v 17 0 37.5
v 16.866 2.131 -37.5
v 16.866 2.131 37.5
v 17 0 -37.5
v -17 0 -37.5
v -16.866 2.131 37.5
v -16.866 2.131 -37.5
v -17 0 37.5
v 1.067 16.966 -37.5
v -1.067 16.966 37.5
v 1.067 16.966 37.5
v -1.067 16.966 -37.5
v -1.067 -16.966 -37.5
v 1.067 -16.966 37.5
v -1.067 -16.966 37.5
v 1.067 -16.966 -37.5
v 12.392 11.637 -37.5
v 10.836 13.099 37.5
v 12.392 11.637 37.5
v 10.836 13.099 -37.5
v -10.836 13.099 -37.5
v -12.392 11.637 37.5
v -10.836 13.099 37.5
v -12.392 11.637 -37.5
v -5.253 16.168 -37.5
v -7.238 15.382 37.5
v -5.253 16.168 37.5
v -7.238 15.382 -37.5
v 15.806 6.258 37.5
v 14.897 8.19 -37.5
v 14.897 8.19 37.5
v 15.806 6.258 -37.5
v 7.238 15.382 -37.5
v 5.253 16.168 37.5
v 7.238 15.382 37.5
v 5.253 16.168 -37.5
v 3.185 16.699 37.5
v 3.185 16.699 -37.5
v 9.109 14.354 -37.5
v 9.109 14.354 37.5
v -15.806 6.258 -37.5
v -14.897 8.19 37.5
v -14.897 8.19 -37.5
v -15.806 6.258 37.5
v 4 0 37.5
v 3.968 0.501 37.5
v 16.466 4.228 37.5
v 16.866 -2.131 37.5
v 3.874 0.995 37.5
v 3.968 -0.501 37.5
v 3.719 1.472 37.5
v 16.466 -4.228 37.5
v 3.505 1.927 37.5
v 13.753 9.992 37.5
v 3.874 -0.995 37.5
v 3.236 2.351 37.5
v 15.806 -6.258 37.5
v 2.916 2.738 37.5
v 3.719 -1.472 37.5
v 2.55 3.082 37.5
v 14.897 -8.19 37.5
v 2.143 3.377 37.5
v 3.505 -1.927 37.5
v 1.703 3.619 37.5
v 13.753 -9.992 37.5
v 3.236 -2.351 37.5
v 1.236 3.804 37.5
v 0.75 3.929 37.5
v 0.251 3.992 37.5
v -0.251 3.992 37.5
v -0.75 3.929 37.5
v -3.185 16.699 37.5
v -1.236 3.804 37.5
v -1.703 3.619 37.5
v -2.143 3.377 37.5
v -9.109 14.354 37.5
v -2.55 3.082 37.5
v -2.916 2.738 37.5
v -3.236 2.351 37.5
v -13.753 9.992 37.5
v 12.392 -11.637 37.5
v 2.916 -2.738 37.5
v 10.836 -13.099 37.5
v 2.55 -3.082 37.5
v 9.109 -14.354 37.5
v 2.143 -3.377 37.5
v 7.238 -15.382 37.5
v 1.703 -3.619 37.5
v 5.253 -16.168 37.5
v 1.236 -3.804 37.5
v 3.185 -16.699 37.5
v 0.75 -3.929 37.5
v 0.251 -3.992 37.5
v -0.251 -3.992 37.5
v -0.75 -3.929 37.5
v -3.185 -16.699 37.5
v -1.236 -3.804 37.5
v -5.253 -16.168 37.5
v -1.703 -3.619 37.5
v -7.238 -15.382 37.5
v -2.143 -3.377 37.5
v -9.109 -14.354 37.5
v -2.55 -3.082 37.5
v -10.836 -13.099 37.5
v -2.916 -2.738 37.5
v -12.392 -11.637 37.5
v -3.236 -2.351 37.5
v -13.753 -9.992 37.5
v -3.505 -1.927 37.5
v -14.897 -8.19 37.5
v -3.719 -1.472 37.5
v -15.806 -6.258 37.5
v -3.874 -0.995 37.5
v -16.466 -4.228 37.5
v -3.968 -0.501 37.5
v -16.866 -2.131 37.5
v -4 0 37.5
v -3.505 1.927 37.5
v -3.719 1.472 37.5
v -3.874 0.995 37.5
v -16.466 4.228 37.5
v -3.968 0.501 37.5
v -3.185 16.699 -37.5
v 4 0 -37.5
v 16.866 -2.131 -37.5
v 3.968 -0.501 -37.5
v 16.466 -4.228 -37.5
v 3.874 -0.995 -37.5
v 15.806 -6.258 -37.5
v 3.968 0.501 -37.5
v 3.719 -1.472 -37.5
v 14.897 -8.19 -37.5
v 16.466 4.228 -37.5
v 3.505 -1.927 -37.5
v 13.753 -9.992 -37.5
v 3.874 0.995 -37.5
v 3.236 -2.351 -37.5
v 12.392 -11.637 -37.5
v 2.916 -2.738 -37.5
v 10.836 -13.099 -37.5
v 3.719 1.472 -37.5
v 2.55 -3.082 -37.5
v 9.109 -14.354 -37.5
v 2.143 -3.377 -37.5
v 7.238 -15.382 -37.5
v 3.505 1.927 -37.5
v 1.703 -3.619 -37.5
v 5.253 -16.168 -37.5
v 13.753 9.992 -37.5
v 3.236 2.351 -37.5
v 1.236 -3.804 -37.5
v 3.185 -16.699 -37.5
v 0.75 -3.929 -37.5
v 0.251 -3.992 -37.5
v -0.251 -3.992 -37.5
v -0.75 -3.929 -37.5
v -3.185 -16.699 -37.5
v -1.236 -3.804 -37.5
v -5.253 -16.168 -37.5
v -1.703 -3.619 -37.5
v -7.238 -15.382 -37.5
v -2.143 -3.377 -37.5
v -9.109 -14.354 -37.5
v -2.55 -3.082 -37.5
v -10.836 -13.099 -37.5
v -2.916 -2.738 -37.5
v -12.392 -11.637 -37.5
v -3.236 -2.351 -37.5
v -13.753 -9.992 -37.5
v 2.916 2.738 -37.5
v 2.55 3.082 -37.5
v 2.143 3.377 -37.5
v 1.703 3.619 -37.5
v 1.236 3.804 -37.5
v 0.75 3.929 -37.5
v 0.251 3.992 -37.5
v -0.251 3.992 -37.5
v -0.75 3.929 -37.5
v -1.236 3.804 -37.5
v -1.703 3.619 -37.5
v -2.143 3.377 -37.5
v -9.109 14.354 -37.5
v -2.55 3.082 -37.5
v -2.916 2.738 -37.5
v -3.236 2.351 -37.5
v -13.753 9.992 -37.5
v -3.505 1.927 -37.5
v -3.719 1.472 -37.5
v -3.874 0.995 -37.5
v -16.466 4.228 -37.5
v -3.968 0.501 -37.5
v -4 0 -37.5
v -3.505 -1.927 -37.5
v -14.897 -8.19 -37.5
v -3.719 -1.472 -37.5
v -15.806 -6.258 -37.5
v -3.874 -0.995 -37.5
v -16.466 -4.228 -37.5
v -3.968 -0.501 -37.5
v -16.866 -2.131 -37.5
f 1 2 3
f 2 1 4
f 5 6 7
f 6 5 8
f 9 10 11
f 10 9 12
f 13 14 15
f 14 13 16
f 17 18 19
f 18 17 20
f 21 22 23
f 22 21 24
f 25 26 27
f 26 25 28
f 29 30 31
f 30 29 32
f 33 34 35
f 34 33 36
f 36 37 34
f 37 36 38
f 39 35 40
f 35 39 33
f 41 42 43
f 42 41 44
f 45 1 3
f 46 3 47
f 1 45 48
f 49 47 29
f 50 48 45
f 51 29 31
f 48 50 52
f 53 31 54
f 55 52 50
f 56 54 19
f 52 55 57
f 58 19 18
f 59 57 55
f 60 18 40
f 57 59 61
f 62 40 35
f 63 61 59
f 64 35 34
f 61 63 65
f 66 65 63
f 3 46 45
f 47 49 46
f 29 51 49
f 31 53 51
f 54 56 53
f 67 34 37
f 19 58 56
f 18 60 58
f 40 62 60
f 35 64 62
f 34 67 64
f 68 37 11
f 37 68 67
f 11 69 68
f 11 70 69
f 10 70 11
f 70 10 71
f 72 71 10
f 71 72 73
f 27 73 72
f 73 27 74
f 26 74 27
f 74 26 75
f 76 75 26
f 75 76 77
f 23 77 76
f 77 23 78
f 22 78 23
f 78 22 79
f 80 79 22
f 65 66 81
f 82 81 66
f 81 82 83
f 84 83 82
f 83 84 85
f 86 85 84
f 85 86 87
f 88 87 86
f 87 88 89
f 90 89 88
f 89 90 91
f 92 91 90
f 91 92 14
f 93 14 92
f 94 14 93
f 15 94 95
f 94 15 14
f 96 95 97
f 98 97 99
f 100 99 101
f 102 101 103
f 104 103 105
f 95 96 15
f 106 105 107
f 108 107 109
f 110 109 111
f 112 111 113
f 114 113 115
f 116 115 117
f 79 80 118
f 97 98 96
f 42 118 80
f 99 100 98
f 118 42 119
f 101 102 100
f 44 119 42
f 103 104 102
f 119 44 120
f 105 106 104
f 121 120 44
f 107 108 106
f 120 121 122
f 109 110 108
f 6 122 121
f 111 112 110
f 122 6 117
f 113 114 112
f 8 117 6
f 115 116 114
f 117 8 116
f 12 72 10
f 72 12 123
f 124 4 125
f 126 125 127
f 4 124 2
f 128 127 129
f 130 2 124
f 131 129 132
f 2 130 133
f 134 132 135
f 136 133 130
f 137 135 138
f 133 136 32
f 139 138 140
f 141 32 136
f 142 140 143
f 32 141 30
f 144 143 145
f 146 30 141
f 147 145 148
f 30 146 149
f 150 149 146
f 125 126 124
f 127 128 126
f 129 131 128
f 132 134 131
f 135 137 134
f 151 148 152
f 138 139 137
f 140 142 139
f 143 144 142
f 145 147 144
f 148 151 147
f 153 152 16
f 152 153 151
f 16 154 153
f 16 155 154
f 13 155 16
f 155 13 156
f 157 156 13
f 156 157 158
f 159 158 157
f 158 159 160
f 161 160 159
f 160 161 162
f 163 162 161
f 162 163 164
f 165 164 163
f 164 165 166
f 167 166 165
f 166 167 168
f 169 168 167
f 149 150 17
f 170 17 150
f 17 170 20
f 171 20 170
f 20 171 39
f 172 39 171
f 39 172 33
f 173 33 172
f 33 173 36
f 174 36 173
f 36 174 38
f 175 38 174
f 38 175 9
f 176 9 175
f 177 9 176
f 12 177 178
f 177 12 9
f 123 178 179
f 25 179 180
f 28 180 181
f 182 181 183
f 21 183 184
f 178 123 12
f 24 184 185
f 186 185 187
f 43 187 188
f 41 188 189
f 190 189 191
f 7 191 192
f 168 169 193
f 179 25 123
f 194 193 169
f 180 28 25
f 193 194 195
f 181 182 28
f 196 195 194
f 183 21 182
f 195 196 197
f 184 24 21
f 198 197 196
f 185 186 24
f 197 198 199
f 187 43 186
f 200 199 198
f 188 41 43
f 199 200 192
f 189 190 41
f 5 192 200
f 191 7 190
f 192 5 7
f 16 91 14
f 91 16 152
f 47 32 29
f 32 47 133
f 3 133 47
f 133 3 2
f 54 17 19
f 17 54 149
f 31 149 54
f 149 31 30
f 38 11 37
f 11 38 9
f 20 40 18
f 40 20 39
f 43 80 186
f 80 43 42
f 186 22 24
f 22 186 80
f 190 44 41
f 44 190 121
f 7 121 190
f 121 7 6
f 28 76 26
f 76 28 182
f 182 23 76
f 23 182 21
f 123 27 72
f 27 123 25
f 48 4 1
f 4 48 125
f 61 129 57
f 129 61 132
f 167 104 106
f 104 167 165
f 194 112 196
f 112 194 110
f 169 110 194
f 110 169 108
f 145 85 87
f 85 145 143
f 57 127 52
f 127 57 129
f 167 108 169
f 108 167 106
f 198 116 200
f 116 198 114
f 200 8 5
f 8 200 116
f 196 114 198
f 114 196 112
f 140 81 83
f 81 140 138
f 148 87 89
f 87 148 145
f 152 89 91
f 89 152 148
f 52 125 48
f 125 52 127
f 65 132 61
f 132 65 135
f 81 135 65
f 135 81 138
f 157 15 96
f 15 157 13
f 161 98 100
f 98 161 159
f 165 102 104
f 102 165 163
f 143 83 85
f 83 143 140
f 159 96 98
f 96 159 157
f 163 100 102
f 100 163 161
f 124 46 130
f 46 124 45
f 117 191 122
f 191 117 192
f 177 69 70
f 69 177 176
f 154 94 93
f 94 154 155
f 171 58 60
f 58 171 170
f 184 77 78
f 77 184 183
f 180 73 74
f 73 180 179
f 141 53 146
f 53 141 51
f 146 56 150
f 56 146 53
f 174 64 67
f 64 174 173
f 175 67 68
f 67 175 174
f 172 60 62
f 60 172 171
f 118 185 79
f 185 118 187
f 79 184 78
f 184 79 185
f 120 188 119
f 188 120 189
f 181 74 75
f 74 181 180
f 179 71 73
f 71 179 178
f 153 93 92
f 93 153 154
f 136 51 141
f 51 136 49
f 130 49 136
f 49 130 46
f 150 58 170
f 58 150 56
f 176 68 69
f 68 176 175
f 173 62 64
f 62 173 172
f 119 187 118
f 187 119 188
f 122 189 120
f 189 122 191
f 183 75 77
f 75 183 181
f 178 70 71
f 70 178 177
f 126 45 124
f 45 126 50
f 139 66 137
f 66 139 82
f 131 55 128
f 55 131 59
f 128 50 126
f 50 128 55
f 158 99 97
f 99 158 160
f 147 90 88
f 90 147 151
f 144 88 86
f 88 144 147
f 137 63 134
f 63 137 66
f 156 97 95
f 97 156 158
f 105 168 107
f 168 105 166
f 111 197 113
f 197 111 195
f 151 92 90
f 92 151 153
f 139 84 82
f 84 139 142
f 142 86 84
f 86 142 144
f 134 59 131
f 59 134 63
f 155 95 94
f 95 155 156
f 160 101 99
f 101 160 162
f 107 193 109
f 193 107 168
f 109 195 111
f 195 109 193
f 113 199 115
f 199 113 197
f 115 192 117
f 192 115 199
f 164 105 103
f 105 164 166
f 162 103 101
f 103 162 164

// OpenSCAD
$fn = 50;


difference() {
	union() {
		translate(v = [0, 0, -37.5000000000]) {
			cylinder(h = 75, r = 17.0000000000);
		}
	}
	union() {
		translate(v = [0, 0, -100.0000000000]) {
			cylinder(h = 200, r = 4);
		}
	}
}
